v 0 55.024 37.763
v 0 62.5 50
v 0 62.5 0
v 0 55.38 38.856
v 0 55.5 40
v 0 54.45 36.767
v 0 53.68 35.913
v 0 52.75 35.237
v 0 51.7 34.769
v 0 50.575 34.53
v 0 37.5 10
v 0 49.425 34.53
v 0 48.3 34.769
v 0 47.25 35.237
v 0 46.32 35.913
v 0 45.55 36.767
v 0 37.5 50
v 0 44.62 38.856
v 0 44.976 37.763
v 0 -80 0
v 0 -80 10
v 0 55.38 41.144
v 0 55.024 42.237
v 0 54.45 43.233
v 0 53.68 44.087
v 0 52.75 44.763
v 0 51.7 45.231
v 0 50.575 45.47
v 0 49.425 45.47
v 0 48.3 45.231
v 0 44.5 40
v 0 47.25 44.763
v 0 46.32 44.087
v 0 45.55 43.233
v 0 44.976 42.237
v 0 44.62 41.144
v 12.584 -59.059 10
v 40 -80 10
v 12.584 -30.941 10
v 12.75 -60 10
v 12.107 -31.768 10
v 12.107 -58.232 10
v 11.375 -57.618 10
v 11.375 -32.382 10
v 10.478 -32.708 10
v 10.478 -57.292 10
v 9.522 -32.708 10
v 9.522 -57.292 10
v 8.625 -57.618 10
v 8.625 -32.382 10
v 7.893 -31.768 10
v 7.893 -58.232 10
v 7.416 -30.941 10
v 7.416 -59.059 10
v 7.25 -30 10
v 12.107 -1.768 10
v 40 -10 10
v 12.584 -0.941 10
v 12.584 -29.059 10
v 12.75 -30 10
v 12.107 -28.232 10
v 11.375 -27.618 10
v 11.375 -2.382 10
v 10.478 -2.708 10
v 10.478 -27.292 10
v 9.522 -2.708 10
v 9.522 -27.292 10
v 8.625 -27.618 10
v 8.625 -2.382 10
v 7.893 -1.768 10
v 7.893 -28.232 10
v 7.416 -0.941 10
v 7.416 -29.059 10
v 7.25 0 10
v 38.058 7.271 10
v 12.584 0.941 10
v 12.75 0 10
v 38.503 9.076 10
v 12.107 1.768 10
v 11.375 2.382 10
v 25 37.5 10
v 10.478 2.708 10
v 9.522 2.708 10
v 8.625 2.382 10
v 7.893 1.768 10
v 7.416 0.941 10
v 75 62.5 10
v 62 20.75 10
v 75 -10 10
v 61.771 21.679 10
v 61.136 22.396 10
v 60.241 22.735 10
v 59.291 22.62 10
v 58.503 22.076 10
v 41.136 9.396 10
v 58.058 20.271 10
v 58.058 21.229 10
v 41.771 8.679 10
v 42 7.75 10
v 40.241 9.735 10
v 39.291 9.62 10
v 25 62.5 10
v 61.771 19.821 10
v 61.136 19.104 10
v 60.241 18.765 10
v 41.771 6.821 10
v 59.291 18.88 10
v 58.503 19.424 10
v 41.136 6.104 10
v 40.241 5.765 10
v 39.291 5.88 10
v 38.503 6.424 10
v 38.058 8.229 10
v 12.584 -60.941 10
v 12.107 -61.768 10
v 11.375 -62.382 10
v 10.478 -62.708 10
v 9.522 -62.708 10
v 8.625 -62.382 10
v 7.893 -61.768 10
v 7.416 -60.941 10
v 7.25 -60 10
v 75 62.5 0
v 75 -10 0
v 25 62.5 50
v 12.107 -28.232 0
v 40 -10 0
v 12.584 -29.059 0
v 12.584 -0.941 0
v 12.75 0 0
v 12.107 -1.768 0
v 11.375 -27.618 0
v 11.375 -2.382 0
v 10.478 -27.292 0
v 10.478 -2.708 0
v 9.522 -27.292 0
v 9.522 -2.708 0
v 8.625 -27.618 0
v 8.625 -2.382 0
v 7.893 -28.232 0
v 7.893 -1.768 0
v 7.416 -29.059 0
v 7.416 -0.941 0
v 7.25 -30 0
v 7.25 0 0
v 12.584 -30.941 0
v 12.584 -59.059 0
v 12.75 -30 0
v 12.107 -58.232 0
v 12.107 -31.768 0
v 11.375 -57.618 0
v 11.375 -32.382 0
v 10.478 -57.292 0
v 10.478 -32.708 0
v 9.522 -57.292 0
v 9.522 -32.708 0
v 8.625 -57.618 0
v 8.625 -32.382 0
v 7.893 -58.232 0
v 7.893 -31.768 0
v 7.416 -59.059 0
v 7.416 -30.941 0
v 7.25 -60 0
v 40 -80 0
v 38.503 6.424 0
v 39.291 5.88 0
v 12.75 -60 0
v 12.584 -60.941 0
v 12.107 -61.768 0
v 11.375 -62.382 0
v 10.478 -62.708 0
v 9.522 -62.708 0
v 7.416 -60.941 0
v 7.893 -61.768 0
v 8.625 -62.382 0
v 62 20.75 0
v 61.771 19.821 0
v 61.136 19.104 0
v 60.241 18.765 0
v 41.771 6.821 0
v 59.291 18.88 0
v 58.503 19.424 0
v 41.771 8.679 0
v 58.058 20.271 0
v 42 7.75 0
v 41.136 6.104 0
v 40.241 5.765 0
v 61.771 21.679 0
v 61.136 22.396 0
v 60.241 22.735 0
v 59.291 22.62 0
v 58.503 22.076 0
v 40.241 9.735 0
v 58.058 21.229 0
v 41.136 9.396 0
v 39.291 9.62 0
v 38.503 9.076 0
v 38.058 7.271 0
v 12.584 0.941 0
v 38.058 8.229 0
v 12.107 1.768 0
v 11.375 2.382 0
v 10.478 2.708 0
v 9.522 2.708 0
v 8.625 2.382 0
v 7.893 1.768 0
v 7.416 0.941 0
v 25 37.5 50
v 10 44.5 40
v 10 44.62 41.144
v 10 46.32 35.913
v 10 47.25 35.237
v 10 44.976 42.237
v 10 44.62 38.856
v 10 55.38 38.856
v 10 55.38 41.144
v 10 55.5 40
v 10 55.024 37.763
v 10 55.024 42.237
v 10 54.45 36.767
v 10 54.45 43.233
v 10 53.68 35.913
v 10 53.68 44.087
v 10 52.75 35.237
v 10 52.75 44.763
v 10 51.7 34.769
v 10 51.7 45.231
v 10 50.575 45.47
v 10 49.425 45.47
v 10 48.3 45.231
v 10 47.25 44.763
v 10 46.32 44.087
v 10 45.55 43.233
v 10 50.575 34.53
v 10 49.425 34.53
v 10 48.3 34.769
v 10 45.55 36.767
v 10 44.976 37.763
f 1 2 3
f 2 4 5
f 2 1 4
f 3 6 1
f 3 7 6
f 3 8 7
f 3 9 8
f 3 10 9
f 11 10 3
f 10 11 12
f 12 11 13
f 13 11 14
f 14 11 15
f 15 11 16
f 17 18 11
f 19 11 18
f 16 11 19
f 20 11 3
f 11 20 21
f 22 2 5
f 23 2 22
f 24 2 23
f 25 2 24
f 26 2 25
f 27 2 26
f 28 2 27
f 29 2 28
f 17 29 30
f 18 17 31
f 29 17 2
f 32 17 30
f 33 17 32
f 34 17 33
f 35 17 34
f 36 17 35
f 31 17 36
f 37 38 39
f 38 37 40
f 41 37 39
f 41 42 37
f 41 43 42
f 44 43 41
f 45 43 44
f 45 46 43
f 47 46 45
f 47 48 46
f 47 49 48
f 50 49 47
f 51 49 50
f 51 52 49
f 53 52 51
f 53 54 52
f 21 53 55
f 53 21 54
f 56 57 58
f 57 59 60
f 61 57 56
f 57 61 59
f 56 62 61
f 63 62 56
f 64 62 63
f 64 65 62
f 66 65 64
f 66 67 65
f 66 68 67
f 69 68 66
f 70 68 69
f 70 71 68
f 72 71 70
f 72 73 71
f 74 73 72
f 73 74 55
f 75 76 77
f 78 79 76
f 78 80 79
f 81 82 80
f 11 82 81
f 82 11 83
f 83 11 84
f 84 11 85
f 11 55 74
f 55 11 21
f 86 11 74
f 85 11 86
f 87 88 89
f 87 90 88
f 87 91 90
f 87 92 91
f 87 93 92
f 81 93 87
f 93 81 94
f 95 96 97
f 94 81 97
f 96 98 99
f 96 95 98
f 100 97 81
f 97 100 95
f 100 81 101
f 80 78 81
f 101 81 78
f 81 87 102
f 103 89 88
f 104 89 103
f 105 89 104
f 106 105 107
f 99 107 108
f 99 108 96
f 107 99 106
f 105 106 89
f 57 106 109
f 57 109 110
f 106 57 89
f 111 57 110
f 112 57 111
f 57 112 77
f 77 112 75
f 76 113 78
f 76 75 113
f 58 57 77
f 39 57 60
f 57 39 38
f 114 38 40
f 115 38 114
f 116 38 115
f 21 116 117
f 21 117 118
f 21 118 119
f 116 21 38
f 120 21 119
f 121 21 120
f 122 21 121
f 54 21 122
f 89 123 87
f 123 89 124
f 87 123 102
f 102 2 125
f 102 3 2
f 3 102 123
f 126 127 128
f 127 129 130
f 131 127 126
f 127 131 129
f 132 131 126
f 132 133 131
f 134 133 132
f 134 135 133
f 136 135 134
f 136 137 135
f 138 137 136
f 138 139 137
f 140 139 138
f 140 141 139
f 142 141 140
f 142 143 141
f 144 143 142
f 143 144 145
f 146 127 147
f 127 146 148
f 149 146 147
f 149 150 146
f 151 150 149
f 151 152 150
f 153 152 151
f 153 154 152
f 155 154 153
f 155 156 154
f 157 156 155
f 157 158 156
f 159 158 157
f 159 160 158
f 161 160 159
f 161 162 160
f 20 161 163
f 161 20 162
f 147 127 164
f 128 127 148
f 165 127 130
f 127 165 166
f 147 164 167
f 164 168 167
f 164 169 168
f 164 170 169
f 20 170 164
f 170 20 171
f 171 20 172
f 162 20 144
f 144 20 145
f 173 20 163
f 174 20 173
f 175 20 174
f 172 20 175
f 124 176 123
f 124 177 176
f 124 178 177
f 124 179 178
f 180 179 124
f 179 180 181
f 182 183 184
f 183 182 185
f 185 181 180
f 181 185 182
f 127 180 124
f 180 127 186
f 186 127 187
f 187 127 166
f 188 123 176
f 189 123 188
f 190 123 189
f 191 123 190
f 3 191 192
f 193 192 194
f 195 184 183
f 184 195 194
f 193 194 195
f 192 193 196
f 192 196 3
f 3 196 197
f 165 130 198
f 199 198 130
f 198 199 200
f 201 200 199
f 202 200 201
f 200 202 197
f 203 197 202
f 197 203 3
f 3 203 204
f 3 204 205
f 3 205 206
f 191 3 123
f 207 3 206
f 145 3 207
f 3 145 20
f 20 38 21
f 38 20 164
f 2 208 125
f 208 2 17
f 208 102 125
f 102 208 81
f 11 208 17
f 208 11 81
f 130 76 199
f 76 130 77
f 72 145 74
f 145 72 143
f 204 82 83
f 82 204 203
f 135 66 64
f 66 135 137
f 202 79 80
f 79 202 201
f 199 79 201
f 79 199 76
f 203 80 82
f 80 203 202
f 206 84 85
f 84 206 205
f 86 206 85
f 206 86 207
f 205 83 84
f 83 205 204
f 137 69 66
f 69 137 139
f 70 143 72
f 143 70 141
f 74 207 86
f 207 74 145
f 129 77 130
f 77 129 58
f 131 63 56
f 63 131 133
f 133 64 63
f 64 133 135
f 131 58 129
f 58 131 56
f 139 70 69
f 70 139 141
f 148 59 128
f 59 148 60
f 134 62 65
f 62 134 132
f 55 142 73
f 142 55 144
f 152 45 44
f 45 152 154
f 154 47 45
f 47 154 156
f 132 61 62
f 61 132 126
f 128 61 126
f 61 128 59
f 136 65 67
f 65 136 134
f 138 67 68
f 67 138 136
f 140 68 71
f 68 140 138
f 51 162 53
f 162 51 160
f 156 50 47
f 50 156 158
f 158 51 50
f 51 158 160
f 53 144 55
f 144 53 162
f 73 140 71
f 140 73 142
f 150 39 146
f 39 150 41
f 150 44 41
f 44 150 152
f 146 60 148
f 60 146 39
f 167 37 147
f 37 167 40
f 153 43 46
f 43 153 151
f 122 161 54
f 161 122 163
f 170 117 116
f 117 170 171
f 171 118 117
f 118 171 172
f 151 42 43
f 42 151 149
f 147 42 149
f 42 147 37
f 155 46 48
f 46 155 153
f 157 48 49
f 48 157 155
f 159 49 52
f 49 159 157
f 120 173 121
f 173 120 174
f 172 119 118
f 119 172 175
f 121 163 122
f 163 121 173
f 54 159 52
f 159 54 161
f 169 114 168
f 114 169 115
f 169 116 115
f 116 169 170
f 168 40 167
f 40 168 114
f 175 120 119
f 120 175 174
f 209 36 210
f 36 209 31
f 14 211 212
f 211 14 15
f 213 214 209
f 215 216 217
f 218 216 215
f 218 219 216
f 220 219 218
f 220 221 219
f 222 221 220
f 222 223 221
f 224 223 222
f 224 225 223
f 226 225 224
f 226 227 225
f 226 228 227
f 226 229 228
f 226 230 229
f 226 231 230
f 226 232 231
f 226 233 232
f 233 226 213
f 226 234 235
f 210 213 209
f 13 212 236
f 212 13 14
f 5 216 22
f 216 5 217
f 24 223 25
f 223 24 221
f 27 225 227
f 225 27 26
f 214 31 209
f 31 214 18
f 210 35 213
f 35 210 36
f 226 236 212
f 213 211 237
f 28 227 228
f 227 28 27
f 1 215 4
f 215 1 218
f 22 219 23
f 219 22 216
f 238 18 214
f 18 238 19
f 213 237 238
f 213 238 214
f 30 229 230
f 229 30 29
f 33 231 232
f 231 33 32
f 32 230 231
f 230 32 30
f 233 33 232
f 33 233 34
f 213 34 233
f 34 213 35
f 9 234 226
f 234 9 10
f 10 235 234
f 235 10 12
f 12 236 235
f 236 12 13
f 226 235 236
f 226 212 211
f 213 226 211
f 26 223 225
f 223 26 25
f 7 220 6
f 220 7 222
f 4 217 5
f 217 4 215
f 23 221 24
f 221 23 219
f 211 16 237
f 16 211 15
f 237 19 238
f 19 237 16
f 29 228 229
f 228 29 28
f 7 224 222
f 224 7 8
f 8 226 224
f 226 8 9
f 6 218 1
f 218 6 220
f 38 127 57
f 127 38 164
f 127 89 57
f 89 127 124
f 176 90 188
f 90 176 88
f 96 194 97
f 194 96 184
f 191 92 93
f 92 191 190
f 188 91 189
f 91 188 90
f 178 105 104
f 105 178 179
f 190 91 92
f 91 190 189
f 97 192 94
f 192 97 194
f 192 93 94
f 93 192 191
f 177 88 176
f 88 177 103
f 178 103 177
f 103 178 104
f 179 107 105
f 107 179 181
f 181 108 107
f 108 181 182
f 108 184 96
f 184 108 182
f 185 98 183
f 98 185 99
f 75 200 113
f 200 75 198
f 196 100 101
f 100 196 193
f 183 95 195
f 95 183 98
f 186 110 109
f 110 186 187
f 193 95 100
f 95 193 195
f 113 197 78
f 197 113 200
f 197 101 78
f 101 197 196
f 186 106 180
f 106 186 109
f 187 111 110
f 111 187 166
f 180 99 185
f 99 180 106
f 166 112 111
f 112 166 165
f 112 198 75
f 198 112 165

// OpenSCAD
// file: functions.scad
barwidth = 20;
width_ridge=4;
widthNema17=43;

rodYOffset = 50;
pulleygt2InclBeltDia = 13.5;
timingbeltthickness=1;
beltoffset = 20;

b624zzdia = 13;


module drawHoles(holes) {
    for(i = holes) {
		translate([ i[0],i[1],-0.1])
			cylinder(h=100,r=i[2]/2, center = false, $fs=1);
	}
}

module nema17(x,y,thickness) {
    nema17holeOffset =6;
    nema17innerHole=25/2;
    nema17Shaft=8/2;
    nema17HoleDistance =31;
    
    /* large NEMA17 circle */
    translate([x,y,-10]) 
        cylinder(h=thickness,r=nema17innerHole, center = false, $fs=1);


    translate([x-nema17HoleDistance/2
        , y-nema17HoleDistance/2
        , -1
    ])
        rotate([0,0,-45])
            cube([3,6,thickness],true);


    translate([x+nema17HoleDistance/2
        ,y+nema17HoleDistance/2
        , -1
    ])
        rotate([0,0,-45])
            cube([3,6,thickness],true);

    translate([x-nema17HoleDistance/2
        ,y+nema17HoleDistance/2
        , -1
    ])
        rotate([0,0,45])
            cube([3,6,thickness],true);

    translate([x+nema17HoleDistance/2
        ,y-nema17HoleDistance/2
        , -1
    ])
        rotate([0,0,45])
            cube([3,6,thickness],true);
    
}
// main file
offsetx =8;
offsety  =9;
barpositionz=30;
rodwidth =10;

include <functions.scad>;

towerWidth = 25;
depth = barwidth+widthNema17+offsety+3;
width = barwidth*4 + rodYOffset+towerWidth/2;


thickness=10;
spacing_bars = 50;
holespacing = 30;

 

holes = [

	[barwidth /2,0 ,5.5],
	[barwidth /2,-holespacing ,5.5],
    [barwidth /2,-holespacing*2 ,5.5],
];



difference() {
    union() {
        
        /* base */
        translate([0,-barwidth*4 ,0]) 
            cube([depth,width,thickness],false);

        translate([0,rodYOffset - towerWidth/2,thickness]) 
            cube([towerWidth,towerWidth,barpositionz- thickness+barwidth],false);
    }
    
    translate([barwidth/2,rodYOffset,barpositionz- thickness+20]) 
        rotate([90,0,270])
            cylinder(h=15,r=rodwidth/2+0.5, center = false, $fs=1);
    
    translate([barwidth*2,-barwidth*4 ,0]) 
        cube([depth,barwidth*3.5,thickness],false);

    drawHoles(holes);


    

    translate([barwidth + 40
        , beltoffset - (pulleygt2InclBeltDia/2-timingbeltthickness)+b624zzdia/2
        , 0]) 
        cylinder(h=15,r=2, center = false, $fs=1);
    
    translate([barwidth + 20
        , beltoffset - (pulleygt2InclBeltDia/2-timingbeltthickness)-b624zzdia/2
        , 0]) 
        cylinder(h=15,r=2, center = false, $fs=1);
}
